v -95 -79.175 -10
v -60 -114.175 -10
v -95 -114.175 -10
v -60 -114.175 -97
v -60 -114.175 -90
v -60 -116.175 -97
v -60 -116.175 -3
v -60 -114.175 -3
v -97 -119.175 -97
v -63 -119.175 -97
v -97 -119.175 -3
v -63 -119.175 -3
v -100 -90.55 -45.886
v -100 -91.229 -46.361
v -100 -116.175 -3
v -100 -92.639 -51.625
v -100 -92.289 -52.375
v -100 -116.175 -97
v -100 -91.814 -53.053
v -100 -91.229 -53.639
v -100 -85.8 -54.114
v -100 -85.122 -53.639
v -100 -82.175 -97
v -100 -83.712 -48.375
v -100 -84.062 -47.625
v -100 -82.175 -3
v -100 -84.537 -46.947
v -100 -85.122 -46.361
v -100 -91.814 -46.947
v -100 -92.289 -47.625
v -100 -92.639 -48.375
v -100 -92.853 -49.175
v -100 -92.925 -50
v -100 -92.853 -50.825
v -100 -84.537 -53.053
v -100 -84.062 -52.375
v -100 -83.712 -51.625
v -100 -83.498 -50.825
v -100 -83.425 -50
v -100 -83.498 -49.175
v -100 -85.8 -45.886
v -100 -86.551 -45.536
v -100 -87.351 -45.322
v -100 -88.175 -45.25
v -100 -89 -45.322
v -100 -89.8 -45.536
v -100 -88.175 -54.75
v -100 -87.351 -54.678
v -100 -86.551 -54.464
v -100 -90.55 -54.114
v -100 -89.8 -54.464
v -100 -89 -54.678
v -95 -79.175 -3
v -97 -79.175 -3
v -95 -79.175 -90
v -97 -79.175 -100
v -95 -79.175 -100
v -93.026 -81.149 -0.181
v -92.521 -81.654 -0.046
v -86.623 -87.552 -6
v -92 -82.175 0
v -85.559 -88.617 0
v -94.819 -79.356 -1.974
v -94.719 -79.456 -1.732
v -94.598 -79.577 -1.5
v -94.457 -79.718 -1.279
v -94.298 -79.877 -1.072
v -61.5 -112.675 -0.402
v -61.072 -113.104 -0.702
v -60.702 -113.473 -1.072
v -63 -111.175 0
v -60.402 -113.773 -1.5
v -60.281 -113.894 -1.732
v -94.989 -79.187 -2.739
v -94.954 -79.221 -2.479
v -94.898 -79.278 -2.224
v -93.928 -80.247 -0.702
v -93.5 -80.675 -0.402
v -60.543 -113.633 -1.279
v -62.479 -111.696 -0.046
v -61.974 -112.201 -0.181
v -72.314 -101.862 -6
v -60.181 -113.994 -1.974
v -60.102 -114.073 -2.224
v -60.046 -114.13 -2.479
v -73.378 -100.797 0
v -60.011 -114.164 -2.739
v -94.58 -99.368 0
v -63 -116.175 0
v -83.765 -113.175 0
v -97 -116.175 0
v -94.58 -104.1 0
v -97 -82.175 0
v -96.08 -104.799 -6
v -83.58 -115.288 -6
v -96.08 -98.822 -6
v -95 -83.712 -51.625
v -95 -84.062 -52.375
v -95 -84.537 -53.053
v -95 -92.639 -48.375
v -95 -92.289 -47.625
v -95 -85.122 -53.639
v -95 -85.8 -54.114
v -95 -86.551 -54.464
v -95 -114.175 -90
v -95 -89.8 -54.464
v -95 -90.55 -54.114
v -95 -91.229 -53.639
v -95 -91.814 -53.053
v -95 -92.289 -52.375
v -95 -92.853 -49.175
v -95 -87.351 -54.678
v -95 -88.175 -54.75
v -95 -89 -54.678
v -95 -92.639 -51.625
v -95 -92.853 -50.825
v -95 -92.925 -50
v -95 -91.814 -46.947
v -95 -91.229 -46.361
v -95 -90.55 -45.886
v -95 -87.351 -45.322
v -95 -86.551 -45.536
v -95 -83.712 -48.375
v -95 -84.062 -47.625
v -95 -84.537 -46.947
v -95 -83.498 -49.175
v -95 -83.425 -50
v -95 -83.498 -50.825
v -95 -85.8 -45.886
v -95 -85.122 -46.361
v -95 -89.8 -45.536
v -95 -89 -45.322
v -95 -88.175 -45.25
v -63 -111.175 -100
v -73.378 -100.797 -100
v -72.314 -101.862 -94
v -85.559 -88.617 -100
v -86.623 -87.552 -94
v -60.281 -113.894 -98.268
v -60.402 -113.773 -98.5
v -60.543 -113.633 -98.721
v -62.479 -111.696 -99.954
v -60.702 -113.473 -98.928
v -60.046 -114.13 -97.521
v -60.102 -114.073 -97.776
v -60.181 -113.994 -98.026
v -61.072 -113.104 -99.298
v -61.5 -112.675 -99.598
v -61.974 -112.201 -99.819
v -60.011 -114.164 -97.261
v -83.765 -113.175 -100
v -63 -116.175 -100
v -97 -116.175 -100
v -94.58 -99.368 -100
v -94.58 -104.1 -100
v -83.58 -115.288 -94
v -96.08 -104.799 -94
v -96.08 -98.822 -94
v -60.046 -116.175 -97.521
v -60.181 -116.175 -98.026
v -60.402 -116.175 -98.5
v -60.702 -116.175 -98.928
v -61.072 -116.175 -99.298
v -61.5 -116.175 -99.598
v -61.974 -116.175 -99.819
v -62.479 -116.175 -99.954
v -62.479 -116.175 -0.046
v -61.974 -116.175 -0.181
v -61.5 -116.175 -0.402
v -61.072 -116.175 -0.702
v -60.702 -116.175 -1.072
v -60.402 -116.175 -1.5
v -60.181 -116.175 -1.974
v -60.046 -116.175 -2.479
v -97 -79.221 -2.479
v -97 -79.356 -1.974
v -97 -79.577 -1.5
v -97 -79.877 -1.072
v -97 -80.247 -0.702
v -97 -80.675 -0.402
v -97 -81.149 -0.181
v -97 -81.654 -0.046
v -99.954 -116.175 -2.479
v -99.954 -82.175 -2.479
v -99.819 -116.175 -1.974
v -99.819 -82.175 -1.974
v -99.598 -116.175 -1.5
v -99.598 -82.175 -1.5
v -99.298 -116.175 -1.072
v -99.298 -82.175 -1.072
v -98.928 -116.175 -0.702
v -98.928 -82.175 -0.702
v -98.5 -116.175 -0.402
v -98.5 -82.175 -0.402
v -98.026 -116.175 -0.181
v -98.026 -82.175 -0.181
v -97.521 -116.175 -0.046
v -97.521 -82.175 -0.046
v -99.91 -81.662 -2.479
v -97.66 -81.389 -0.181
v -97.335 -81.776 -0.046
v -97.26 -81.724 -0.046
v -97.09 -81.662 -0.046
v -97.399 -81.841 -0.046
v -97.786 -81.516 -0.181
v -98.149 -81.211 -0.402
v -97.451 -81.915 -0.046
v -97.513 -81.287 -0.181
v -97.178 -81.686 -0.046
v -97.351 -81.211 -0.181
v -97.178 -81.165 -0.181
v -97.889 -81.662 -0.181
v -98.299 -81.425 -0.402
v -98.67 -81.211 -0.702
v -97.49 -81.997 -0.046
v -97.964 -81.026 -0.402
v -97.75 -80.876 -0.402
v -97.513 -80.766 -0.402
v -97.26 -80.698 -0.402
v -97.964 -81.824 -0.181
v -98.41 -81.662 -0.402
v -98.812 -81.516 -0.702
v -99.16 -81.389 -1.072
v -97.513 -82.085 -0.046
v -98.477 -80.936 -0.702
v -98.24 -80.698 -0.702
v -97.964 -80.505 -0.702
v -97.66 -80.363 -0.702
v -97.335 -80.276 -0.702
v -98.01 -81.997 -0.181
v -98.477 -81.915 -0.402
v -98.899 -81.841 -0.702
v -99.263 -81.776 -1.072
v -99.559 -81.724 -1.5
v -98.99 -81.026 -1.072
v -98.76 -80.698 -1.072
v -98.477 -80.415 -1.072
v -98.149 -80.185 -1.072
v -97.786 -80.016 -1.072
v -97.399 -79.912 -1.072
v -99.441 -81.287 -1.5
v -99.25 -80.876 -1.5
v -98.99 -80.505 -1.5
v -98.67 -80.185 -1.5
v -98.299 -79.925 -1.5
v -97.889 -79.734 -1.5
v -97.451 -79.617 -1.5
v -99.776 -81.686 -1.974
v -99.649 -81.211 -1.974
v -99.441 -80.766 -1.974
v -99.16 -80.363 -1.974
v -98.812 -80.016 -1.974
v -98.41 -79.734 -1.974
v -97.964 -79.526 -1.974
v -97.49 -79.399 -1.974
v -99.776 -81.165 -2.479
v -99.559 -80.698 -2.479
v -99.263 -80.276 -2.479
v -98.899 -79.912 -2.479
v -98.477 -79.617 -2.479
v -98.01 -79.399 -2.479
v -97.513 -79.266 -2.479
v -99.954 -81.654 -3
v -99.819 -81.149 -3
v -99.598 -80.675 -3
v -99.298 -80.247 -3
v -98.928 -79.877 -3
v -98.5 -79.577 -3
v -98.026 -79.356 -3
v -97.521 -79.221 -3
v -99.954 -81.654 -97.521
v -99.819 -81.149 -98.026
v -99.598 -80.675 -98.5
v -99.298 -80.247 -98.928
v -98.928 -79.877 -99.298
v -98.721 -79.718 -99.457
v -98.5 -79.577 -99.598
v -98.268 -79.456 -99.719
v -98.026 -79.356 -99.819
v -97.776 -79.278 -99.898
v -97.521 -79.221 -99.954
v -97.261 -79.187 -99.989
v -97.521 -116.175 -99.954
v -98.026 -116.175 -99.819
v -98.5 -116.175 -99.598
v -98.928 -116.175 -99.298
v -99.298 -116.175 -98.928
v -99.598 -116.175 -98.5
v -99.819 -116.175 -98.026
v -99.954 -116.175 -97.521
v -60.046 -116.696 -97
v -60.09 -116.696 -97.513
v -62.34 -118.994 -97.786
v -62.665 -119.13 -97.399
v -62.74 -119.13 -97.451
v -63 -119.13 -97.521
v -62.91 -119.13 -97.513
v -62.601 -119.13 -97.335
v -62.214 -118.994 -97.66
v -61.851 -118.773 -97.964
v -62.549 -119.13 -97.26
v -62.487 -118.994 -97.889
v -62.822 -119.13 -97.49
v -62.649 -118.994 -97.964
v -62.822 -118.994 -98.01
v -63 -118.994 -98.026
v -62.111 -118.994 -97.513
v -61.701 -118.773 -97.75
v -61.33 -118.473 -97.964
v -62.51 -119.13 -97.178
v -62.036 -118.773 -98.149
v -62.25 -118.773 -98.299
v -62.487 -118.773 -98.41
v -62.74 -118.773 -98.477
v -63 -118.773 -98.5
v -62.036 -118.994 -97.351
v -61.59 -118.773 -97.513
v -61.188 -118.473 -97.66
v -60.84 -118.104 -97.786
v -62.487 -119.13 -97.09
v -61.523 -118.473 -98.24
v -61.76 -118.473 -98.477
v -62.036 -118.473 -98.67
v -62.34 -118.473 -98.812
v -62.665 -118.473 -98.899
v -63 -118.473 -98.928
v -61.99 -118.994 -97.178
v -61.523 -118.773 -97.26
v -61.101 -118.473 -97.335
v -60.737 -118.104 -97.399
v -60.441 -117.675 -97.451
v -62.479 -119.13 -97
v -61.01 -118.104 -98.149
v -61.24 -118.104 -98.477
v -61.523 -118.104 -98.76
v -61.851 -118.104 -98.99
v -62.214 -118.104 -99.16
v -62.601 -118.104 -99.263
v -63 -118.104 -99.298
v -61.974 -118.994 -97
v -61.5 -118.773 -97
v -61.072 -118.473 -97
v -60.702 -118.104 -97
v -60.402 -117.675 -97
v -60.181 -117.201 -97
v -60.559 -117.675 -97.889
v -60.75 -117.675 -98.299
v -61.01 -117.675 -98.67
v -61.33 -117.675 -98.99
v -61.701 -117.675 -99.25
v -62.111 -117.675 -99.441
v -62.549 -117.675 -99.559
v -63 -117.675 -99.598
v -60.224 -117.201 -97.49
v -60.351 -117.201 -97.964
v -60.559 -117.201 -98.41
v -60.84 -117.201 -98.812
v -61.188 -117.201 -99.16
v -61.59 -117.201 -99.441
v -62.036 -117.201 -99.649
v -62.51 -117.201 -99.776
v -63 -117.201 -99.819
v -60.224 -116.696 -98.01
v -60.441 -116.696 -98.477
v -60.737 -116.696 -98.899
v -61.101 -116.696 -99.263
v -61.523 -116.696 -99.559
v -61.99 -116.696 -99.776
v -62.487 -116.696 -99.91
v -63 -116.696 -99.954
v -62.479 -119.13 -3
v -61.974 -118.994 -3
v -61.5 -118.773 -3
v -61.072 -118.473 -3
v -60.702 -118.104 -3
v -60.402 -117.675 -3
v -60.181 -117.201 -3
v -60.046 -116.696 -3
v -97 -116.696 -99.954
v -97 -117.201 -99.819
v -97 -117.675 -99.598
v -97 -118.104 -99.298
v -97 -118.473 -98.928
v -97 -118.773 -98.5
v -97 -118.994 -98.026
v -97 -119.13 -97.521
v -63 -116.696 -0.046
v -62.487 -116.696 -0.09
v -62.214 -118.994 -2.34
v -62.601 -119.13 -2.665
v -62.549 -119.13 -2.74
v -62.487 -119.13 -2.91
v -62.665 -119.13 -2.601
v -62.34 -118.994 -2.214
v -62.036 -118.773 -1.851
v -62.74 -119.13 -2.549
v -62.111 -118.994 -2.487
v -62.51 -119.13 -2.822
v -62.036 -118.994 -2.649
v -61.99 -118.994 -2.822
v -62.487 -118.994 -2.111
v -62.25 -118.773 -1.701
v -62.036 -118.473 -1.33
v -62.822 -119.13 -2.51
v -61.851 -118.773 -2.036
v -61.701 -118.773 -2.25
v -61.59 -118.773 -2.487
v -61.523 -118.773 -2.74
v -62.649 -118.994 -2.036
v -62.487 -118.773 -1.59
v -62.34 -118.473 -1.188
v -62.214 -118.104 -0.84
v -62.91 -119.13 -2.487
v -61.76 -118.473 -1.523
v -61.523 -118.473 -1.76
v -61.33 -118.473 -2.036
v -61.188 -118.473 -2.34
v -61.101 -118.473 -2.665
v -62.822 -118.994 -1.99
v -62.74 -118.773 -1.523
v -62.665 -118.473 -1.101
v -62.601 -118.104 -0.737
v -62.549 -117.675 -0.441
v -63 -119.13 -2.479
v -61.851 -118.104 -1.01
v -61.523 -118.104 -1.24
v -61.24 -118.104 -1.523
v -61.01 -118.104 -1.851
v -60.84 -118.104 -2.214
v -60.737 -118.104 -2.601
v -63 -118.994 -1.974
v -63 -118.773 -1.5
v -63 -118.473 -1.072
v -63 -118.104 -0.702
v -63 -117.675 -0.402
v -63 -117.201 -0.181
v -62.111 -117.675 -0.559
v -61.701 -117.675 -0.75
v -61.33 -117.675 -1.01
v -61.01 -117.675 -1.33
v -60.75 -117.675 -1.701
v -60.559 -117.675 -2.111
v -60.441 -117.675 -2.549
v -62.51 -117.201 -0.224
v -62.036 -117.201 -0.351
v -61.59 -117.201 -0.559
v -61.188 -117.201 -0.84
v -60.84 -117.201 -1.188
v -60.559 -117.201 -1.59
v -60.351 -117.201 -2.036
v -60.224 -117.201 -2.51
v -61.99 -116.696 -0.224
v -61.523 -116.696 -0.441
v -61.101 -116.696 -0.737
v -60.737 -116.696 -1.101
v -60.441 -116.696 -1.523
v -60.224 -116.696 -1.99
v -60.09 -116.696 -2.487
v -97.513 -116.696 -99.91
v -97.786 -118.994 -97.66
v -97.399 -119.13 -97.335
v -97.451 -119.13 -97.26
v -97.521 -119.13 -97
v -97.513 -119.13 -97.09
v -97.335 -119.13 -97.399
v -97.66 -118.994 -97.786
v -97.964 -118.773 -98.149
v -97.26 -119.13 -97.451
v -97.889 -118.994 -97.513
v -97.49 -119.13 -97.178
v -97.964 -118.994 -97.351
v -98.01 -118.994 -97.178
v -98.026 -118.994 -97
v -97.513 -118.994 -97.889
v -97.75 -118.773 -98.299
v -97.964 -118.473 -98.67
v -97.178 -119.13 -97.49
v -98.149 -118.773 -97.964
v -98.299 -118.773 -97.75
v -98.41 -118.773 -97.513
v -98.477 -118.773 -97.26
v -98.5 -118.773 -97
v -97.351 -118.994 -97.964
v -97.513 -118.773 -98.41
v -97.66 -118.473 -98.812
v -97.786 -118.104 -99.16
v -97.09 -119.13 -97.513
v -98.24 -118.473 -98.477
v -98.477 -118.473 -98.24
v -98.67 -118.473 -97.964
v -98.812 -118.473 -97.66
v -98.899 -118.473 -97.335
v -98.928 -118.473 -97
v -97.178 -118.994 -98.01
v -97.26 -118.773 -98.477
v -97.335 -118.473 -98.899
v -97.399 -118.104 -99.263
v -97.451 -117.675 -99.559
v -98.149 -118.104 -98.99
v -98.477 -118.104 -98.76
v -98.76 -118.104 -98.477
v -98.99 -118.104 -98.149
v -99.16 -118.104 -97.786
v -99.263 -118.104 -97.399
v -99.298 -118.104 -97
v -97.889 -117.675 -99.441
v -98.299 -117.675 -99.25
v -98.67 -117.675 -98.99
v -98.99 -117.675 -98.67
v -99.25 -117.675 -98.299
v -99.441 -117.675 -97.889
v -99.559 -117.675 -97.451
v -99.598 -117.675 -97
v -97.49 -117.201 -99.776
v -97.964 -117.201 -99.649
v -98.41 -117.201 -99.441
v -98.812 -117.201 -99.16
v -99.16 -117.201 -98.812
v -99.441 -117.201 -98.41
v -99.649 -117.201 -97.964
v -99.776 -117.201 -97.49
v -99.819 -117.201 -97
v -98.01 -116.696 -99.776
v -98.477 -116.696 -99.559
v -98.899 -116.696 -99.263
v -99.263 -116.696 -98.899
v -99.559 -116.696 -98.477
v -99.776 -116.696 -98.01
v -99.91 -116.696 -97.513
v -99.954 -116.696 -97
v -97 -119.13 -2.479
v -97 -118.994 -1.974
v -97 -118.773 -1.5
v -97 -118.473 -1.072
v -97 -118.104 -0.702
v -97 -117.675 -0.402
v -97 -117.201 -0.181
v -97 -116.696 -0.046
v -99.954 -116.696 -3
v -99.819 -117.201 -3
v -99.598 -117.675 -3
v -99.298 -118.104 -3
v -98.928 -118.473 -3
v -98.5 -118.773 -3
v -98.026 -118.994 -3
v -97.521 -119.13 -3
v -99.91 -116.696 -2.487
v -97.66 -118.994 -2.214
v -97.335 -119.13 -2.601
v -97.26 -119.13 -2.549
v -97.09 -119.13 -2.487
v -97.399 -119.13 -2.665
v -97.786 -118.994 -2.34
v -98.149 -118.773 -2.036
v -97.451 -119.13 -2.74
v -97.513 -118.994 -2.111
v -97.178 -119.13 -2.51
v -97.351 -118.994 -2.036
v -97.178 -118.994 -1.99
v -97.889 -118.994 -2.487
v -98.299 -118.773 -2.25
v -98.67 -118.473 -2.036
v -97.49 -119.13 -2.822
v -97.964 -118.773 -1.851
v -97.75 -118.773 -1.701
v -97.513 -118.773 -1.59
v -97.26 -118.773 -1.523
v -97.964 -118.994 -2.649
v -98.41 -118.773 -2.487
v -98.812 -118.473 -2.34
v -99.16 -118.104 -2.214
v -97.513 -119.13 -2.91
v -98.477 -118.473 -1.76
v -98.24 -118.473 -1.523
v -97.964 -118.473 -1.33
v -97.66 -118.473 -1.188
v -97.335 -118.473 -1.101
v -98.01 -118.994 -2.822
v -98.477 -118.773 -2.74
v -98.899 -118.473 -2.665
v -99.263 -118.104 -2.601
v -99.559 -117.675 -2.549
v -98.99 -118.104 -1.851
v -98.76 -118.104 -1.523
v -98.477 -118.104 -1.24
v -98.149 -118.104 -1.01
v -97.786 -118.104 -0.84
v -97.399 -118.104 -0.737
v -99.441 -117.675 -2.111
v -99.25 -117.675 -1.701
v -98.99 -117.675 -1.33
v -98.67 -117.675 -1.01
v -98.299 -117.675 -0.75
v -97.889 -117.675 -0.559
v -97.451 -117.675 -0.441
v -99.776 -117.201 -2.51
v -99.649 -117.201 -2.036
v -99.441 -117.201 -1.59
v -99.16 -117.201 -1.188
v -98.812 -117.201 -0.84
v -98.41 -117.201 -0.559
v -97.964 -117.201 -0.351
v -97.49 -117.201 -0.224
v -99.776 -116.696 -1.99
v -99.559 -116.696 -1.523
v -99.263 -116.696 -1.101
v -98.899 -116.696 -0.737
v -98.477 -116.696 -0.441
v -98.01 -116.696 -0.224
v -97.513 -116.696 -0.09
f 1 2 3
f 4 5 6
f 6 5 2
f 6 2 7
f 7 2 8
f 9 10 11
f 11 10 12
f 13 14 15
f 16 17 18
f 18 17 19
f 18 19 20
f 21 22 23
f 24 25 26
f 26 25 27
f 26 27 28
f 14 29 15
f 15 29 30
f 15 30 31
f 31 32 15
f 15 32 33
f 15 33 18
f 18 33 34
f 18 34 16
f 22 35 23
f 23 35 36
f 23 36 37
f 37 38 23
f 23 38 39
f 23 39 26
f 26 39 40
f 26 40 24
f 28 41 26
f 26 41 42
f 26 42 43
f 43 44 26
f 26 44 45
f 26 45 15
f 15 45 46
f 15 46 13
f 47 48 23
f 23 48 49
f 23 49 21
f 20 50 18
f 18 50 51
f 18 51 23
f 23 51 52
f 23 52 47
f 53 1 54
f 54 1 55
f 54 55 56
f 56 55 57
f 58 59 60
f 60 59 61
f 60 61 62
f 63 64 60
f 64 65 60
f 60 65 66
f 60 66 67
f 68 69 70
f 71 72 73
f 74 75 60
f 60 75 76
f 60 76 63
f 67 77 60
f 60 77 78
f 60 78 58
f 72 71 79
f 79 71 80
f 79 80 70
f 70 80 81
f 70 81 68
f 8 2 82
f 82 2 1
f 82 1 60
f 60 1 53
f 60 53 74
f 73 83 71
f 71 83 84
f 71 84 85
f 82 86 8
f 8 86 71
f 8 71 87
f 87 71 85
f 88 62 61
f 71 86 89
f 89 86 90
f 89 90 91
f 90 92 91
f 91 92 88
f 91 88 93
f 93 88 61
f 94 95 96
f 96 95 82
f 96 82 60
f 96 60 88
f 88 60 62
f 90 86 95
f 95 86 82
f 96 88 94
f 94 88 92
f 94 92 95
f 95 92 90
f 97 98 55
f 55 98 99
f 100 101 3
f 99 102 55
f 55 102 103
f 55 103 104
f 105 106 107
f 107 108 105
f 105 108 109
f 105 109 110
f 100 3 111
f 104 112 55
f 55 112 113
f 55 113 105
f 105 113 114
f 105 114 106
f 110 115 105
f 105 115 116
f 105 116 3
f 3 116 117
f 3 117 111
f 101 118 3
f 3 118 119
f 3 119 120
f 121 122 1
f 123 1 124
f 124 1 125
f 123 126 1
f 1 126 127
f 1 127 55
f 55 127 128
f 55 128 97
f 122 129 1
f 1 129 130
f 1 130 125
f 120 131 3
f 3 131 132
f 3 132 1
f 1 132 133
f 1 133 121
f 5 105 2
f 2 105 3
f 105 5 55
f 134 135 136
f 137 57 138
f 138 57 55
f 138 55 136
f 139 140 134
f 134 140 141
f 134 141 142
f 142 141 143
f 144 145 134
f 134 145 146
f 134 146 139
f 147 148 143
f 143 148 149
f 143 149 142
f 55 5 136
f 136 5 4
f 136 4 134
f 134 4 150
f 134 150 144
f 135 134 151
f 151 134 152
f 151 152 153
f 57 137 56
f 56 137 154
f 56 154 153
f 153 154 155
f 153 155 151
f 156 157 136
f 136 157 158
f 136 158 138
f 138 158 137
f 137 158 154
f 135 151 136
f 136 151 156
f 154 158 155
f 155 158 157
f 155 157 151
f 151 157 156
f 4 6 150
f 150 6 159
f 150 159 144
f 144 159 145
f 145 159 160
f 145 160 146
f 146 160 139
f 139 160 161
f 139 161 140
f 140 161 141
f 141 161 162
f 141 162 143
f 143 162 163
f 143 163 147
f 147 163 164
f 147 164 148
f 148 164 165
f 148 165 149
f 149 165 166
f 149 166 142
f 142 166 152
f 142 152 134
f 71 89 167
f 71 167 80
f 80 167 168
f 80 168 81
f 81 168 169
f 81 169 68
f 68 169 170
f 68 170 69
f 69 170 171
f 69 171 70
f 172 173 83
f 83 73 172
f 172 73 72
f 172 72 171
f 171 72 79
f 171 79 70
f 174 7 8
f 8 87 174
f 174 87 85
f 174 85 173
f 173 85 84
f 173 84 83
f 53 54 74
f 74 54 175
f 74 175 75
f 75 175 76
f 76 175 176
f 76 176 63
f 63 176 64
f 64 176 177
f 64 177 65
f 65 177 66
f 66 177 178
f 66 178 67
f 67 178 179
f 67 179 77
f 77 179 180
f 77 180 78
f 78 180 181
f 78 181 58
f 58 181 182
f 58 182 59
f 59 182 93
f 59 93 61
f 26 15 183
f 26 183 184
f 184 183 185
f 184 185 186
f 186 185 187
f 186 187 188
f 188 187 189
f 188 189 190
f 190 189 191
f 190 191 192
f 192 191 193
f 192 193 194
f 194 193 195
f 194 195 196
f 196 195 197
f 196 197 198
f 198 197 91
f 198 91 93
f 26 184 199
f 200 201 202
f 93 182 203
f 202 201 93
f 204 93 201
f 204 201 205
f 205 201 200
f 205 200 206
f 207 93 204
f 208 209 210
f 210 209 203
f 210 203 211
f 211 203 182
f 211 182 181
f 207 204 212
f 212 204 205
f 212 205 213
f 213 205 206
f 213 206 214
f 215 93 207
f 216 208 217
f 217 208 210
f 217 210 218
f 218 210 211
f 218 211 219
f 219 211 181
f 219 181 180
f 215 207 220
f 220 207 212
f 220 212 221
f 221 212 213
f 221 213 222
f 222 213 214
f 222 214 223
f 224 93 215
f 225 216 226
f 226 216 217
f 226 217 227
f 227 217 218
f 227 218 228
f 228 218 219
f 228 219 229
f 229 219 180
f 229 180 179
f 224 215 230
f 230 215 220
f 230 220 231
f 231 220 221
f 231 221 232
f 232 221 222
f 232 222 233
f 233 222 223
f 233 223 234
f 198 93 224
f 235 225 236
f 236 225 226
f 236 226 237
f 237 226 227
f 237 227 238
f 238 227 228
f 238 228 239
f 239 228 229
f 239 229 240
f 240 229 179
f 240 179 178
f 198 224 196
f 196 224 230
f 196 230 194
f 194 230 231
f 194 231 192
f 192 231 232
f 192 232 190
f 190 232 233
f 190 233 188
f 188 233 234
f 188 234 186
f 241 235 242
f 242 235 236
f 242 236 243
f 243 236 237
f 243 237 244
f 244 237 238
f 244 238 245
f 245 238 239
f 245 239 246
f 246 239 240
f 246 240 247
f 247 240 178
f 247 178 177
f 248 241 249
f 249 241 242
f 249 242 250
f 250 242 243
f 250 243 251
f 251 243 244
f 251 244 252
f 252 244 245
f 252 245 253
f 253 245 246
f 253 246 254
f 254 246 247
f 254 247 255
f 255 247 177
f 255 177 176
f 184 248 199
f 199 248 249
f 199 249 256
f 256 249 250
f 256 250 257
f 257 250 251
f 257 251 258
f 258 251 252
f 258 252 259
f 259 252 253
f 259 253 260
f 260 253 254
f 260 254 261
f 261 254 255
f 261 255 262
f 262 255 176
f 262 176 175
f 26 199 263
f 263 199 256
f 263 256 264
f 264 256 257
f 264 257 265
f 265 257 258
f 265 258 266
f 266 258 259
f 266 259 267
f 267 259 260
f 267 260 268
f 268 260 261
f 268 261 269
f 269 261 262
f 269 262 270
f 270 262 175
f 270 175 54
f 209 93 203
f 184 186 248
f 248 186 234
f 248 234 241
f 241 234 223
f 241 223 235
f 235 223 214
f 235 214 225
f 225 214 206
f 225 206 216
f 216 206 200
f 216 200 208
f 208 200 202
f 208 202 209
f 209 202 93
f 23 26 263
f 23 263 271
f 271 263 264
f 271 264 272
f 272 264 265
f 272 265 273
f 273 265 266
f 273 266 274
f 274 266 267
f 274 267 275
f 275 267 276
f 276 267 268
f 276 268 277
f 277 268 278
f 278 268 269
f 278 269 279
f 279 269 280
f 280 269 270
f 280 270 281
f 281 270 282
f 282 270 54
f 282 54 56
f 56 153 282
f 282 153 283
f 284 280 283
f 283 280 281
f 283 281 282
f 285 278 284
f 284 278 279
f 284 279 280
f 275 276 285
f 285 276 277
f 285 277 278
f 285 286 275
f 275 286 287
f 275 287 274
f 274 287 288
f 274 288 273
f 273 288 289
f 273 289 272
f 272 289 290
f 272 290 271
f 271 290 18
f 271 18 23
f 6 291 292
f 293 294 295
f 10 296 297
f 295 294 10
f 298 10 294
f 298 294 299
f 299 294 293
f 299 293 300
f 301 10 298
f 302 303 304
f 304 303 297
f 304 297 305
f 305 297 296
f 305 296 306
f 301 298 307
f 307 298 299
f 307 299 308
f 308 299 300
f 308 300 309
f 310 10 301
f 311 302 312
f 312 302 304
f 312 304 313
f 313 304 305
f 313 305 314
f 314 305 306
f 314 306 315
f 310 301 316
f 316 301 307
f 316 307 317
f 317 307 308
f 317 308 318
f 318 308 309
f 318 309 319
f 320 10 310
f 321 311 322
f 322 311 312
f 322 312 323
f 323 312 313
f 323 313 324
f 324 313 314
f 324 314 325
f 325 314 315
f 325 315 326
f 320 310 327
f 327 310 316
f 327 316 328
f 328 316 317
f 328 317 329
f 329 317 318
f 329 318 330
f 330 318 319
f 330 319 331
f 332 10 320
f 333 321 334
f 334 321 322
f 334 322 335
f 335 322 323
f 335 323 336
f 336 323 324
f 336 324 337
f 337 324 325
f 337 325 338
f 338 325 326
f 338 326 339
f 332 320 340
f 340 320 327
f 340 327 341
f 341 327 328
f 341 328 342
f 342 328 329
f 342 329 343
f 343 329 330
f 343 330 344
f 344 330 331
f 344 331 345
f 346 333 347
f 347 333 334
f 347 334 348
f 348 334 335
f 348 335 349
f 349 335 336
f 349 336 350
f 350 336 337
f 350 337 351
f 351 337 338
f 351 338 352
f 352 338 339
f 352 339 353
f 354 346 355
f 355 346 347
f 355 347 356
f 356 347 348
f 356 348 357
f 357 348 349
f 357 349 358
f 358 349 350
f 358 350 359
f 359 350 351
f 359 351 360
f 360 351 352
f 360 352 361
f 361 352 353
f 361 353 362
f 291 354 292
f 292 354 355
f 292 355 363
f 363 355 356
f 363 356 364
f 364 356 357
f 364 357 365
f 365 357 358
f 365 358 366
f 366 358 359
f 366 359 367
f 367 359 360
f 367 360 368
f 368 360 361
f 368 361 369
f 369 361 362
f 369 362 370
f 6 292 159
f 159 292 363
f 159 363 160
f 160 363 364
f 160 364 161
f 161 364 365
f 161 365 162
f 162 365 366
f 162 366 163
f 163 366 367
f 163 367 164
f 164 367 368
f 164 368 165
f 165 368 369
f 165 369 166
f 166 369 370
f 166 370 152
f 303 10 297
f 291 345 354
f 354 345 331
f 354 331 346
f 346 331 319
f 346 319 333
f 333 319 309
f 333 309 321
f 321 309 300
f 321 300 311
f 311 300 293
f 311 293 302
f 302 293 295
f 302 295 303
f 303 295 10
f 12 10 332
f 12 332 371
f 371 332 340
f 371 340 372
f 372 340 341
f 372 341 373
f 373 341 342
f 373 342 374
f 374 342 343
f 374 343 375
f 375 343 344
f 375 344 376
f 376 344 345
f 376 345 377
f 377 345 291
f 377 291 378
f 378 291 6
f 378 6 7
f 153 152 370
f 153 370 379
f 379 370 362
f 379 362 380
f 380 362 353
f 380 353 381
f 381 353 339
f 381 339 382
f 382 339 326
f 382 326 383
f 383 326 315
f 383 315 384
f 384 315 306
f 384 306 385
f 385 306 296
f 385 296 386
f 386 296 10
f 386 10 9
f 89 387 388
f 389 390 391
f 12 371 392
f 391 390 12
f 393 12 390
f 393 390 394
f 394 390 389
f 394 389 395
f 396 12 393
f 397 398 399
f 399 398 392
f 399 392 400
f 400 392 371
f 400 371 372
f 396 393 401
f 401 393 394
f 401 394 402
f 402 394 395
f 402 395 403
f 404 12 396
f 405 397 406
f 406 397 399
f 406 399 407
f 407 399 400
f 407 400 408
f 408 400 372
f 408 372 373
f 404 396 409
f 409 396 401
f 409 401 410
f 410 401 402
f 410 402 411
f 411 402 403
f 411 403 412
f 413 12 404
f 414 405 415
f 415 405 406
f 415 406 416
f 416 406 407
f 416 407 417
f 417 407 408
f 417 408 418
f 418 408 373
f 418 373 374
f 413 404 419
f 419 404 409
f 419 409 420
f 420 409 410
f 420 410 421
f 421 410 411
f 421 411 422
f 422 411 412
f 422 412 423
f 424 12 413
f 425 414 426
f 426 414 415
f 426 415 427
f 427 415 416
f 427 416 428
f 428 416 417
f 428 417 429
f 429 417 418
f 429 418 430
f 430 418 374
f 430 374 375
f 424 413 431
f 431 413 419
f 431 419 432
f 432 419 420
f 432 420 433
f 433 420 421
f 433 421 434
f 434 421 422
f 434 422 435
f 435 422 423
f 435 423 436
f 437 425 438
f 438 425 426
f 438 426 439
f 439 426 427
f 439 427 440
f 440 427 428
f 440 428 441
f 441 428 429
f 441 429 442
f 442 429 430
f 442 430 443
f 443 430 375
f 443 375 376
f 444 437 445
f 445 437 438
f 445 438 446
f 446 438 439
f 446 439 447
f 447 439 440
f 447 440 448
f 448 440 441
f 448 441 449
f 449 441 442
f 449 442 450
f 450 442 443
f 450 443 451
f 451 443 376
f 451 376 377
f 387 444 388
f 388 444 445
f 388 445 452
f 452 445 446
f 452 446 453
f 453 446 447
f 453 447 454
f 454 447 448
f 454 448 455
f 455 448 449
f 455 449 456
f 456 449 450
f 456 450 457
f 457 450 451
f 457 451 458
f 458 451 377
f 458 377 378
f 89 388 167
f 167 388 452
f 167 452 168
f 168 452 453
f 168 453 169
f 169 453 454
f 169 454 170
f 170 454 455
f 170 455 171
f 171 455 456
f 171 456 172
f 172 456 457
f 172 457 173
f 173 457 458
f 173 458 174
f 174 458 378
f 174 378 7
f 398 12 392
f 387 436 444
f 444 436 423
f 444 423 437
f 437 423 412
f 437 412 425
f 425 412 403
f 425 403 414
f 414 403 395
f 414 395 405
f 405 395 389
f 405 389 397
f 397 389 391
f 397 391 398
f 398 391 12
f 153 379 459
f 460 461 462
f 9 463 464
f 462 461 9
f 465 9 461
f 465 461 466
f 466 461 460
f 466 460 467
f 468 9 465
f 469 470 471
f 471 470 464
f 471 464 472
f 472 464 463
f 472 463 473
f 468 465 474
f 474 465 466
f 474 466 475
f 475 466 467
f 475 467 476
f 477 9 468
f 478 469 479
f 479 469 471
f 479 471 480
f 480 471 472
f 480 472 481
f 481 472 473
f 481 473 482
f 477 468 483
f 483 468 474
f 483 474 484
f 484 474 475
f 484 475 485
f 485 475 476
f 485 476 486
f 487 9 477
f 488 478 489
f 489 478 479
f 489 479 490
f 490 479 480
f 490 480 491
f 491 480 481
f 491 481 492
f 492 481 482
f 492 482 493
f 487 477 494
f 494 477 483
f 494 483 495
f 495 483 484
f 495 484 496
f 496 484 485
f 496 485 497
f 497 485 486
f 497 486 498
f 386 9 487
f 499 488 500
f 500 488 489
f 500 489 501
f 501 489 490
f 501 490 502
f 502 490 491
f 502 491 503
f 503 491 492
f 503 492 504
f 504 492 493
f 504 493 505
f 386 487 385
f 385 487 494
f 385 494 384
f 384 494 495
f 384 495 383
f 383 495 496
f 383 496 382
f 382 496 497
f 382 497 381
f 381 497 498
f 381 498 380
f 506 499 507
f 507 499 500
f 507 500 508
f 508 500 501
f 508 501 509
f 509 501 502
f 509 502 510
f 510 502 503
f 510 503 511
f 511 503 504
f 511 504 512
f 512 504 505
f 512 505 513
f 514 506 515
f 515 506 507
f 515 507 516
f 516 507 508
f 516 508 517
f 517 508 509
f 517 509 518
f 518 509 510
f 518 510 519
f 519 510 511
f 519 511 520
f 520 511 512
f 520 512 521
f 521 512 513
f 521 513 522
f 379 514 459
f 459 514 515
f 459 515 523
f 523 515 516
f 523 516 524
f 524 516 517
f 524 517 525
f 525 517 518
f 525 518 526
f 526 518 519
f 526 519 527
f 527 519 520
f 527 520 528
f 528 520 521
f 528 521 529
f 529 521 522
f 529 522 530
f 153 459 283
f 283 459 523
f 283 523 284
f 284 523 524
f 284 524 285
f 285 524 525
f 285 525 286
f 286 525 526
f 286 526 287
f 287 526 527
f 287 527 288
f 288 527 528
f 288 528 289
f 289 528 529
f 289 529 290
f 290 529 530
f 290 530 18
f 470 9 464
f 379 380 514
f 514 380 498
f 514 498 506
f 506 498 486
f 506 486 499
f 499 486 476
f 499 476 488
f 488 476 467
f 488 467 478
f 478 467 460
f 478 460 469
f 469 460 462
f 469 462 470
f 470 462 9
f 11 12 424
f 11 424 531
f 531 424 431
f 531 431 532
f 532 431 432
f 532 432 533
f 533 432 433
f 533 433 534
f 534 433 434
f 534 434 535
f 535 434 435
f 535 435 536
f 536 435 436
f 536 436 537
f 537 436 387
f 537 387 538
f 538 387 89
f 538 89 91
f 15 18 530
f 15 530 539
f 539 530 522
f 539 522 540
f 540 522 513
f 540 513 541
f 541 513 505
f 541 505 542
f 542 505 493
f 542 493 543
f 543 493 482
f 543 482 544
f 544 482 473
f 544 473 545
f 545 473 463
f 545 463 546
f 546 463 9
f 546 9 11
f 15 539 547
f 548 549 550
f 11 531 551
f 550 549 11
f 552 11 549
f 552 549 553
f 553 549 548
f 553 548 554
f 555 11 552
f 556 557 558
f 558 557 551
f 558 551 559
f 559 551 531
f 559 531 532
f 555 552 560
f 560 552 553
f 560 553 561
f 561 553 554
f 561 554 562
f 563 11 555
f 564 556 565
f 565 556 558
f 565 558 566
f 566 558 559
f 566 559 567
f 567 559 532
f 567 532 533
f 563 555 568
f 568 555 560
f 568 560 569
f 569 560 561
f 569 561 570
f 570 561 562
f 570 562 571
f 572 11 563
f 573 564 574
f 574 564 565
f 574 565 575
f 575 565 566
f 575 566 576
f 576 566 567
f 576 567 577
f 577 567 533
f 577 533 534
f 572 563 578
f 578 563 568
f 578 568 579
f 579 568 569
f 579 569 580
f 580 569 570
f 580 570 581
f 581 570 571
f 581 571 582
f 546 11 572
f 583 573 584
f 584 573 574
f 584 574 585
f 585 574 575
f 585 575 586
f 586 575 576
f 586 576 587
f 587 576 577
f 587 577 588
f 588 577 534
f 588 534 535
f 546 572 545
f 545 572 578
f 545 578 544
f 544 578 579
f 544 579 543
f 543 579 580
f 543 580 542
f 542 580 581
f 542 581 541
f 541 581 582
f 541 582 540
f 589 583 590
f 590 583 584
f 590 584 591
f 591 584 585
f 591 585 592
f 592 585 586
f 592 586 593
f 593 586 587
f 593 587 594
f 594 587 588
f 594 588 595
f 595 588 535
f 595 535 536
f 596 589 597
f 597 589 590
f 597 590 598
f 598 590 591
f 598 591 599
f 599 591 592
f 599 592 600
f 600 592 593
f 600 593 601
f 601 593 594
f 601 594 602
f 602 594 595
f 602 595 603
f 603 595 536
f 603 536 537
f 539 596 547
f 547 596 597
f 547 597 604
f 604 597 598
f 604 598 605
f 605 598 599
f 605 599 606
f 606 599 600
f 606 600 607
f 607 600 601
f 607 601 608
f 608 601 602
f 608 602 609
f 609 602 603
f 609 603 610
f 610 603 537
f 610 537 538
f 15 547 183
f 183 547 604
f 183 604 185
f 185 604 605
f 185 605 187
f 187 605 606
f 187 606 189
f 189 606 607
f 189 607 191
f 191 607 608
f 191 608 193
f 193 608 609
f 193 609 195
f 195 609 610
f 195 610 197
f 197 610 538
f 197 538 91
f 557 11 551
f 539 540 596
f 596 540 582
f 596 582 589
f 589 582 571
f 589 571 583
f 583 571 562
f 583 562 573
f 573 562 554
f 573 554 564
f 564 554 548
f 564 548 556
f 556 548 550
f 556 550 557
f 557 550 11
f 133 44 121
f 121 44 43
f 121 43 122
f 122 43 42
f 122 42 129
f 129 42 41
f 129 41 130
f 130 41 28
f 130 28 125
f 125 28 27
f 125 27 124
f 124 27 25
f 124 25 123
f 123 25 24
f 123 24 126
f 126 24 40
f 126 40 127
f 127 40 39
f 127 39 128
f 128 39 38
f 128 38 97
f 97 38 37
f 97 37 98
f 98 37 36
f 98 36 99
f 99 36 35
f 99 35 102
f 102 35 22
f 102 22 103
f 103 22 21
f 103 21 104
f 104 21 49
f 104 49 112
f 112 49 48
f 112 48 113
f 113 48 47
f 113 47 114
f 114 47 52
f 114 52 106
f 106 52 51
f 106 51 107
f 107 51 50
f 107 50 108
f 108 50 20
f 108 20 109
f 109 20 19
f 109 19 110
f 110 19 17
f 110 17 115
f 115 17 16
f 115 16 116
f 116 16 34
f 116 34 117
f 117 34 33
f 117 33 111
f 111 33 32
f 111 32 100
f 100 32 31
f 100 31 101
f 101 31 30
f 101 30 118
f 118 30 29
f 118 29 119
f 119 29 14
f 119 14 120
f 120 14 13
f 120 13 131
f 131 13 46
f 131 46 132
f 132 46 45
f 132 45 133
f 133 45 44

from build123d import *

# Parameters (mm, degrees)
EXTRUDE_1_DEPTH     = 10
EXTRUDE_3_DEPTH     = 40
FILLET_2_R          = 3
FILLET_3_R          = 3
SKETCH_13_R         = 4.75
CUT_EXTRUDE_3_DEPTH = 10


with BuildPart() as part:
    # 草图3 → 凸台-拉伸1 (new body)
    with BuildSketch(Plane.XY):
        Polygon((-100, -79.175359259), (-100, -119.175359259), (-60, -119.175359259), (-60, -114.175359259), (-95, -79.175359259), align=None)
    extrude(amount=-EXTRUDE_1_DEPTH)

    # 草图5 → 切除-放样1 section 0
    with BuildSketch(Plane.XY.offset(-6)):
        with BuildLine():
            Line((-96.08, -104.799041882), (-96.08, -98.821989002))
            Line((-96.08, -98.821989002), (-81.709132385, -81.695455893))
            Line((-81.709132385, -81.695455893), (-66.265676412, -94.654054104))
            Line((-66.265676412, -94.654054104), (-83.579668035, -115.288065824))
            Line((-83.579668035, -115.288065824), (-96.08, -104.799041882))
        make_face()
    # 草图8 → 切除-放样1 section 1
    with BuildSketch(Plane.XY):
        with BuildLine():
            Line((-94.58, -104.099580395), (-94.58, -99.367944353))
            Line((-94.58, -99.367944353), (-80.56006572, -82.659637307))
            Line((-80.56006572, -82.659637307), (-67.414743077, -93.68987269))
            Line((-67.414743077, -93.68987269), (-83.764553285, -113.174817744))
            Line((-83.764553285, -113.174817744), (-94.58, -104.099580395))
        make_face()
    loft(mode=Mode.SUBTRACT)

    # 草图9 → 凸台-拉伸3 (add)
    with BuildSketch(Plane(origin=(0, 0, -10), x_dir=(-1, 0, 0), z_dir=(0, 0, -1))):
        Polygon((95, -79.175359259), (95, -114.175359259), (60, -114.175359259), (60, -119.175359259), (100, -119.175359259), (100, -79.175359259), align=None)
    extrude(amount=EXTRUDE_3_DEPTH)

    # 镜向2: part across plane


with BuildPart() as part_1:
    add(part.part)
    add(part.part.mirror(Plane(origin=(0, 0, -50), x_dir=(1, 0, 0), z_dir=(0, 0, -1))))

    # 圆角2
    fillet_2_edges = [part_1.edges().sort_by_distance(p)[0] for p in [
        (-60, -116.675359259, -100),
        (-60, -116.675359259, 0),
        (-100, -99.175359259, -100),
        (-100, -99.175359259, 0),
        (-100, -79.175359259, -50),
        (-97.5, -79.175359259, 0),
    ]]
    fillet(fillet_2_edges, radius=FILLET_2_R)

    # 圆角3
    fillet_3_edges = [part_1.edges().sort_by_distance(p)[0] for p in [
        (-80, -119.175359259, -100),
        (-80, -119.175359259, 0),
        (-100, -119.175359259, -50),
        (-60, -119.175359259, -50),
        (-99.121320344, -119.175359259, -0.878679656),
        (-99.121320344, -119.175359259, -99.121320344),
        (-60.878679656, -119.175359259, -0.878679656),
        (-60.878679656, -119.175359259, -99.121320344),
    ]]
    fillet(fillet_3_edges, radius=FILLET_3_R)

    # 草图13 → 切除-拉伸3 (cut)
    with BuildSketch(Plane.ZY.offset(100)):
        with Locations((-50, -88.175359259)):
            Circle(SKETCH_13_R)
    extrude(amount=-CUT_EXTRUDE_3_DEPTH, mode=Mode.SUBTRACT)


solid = part_1.part
